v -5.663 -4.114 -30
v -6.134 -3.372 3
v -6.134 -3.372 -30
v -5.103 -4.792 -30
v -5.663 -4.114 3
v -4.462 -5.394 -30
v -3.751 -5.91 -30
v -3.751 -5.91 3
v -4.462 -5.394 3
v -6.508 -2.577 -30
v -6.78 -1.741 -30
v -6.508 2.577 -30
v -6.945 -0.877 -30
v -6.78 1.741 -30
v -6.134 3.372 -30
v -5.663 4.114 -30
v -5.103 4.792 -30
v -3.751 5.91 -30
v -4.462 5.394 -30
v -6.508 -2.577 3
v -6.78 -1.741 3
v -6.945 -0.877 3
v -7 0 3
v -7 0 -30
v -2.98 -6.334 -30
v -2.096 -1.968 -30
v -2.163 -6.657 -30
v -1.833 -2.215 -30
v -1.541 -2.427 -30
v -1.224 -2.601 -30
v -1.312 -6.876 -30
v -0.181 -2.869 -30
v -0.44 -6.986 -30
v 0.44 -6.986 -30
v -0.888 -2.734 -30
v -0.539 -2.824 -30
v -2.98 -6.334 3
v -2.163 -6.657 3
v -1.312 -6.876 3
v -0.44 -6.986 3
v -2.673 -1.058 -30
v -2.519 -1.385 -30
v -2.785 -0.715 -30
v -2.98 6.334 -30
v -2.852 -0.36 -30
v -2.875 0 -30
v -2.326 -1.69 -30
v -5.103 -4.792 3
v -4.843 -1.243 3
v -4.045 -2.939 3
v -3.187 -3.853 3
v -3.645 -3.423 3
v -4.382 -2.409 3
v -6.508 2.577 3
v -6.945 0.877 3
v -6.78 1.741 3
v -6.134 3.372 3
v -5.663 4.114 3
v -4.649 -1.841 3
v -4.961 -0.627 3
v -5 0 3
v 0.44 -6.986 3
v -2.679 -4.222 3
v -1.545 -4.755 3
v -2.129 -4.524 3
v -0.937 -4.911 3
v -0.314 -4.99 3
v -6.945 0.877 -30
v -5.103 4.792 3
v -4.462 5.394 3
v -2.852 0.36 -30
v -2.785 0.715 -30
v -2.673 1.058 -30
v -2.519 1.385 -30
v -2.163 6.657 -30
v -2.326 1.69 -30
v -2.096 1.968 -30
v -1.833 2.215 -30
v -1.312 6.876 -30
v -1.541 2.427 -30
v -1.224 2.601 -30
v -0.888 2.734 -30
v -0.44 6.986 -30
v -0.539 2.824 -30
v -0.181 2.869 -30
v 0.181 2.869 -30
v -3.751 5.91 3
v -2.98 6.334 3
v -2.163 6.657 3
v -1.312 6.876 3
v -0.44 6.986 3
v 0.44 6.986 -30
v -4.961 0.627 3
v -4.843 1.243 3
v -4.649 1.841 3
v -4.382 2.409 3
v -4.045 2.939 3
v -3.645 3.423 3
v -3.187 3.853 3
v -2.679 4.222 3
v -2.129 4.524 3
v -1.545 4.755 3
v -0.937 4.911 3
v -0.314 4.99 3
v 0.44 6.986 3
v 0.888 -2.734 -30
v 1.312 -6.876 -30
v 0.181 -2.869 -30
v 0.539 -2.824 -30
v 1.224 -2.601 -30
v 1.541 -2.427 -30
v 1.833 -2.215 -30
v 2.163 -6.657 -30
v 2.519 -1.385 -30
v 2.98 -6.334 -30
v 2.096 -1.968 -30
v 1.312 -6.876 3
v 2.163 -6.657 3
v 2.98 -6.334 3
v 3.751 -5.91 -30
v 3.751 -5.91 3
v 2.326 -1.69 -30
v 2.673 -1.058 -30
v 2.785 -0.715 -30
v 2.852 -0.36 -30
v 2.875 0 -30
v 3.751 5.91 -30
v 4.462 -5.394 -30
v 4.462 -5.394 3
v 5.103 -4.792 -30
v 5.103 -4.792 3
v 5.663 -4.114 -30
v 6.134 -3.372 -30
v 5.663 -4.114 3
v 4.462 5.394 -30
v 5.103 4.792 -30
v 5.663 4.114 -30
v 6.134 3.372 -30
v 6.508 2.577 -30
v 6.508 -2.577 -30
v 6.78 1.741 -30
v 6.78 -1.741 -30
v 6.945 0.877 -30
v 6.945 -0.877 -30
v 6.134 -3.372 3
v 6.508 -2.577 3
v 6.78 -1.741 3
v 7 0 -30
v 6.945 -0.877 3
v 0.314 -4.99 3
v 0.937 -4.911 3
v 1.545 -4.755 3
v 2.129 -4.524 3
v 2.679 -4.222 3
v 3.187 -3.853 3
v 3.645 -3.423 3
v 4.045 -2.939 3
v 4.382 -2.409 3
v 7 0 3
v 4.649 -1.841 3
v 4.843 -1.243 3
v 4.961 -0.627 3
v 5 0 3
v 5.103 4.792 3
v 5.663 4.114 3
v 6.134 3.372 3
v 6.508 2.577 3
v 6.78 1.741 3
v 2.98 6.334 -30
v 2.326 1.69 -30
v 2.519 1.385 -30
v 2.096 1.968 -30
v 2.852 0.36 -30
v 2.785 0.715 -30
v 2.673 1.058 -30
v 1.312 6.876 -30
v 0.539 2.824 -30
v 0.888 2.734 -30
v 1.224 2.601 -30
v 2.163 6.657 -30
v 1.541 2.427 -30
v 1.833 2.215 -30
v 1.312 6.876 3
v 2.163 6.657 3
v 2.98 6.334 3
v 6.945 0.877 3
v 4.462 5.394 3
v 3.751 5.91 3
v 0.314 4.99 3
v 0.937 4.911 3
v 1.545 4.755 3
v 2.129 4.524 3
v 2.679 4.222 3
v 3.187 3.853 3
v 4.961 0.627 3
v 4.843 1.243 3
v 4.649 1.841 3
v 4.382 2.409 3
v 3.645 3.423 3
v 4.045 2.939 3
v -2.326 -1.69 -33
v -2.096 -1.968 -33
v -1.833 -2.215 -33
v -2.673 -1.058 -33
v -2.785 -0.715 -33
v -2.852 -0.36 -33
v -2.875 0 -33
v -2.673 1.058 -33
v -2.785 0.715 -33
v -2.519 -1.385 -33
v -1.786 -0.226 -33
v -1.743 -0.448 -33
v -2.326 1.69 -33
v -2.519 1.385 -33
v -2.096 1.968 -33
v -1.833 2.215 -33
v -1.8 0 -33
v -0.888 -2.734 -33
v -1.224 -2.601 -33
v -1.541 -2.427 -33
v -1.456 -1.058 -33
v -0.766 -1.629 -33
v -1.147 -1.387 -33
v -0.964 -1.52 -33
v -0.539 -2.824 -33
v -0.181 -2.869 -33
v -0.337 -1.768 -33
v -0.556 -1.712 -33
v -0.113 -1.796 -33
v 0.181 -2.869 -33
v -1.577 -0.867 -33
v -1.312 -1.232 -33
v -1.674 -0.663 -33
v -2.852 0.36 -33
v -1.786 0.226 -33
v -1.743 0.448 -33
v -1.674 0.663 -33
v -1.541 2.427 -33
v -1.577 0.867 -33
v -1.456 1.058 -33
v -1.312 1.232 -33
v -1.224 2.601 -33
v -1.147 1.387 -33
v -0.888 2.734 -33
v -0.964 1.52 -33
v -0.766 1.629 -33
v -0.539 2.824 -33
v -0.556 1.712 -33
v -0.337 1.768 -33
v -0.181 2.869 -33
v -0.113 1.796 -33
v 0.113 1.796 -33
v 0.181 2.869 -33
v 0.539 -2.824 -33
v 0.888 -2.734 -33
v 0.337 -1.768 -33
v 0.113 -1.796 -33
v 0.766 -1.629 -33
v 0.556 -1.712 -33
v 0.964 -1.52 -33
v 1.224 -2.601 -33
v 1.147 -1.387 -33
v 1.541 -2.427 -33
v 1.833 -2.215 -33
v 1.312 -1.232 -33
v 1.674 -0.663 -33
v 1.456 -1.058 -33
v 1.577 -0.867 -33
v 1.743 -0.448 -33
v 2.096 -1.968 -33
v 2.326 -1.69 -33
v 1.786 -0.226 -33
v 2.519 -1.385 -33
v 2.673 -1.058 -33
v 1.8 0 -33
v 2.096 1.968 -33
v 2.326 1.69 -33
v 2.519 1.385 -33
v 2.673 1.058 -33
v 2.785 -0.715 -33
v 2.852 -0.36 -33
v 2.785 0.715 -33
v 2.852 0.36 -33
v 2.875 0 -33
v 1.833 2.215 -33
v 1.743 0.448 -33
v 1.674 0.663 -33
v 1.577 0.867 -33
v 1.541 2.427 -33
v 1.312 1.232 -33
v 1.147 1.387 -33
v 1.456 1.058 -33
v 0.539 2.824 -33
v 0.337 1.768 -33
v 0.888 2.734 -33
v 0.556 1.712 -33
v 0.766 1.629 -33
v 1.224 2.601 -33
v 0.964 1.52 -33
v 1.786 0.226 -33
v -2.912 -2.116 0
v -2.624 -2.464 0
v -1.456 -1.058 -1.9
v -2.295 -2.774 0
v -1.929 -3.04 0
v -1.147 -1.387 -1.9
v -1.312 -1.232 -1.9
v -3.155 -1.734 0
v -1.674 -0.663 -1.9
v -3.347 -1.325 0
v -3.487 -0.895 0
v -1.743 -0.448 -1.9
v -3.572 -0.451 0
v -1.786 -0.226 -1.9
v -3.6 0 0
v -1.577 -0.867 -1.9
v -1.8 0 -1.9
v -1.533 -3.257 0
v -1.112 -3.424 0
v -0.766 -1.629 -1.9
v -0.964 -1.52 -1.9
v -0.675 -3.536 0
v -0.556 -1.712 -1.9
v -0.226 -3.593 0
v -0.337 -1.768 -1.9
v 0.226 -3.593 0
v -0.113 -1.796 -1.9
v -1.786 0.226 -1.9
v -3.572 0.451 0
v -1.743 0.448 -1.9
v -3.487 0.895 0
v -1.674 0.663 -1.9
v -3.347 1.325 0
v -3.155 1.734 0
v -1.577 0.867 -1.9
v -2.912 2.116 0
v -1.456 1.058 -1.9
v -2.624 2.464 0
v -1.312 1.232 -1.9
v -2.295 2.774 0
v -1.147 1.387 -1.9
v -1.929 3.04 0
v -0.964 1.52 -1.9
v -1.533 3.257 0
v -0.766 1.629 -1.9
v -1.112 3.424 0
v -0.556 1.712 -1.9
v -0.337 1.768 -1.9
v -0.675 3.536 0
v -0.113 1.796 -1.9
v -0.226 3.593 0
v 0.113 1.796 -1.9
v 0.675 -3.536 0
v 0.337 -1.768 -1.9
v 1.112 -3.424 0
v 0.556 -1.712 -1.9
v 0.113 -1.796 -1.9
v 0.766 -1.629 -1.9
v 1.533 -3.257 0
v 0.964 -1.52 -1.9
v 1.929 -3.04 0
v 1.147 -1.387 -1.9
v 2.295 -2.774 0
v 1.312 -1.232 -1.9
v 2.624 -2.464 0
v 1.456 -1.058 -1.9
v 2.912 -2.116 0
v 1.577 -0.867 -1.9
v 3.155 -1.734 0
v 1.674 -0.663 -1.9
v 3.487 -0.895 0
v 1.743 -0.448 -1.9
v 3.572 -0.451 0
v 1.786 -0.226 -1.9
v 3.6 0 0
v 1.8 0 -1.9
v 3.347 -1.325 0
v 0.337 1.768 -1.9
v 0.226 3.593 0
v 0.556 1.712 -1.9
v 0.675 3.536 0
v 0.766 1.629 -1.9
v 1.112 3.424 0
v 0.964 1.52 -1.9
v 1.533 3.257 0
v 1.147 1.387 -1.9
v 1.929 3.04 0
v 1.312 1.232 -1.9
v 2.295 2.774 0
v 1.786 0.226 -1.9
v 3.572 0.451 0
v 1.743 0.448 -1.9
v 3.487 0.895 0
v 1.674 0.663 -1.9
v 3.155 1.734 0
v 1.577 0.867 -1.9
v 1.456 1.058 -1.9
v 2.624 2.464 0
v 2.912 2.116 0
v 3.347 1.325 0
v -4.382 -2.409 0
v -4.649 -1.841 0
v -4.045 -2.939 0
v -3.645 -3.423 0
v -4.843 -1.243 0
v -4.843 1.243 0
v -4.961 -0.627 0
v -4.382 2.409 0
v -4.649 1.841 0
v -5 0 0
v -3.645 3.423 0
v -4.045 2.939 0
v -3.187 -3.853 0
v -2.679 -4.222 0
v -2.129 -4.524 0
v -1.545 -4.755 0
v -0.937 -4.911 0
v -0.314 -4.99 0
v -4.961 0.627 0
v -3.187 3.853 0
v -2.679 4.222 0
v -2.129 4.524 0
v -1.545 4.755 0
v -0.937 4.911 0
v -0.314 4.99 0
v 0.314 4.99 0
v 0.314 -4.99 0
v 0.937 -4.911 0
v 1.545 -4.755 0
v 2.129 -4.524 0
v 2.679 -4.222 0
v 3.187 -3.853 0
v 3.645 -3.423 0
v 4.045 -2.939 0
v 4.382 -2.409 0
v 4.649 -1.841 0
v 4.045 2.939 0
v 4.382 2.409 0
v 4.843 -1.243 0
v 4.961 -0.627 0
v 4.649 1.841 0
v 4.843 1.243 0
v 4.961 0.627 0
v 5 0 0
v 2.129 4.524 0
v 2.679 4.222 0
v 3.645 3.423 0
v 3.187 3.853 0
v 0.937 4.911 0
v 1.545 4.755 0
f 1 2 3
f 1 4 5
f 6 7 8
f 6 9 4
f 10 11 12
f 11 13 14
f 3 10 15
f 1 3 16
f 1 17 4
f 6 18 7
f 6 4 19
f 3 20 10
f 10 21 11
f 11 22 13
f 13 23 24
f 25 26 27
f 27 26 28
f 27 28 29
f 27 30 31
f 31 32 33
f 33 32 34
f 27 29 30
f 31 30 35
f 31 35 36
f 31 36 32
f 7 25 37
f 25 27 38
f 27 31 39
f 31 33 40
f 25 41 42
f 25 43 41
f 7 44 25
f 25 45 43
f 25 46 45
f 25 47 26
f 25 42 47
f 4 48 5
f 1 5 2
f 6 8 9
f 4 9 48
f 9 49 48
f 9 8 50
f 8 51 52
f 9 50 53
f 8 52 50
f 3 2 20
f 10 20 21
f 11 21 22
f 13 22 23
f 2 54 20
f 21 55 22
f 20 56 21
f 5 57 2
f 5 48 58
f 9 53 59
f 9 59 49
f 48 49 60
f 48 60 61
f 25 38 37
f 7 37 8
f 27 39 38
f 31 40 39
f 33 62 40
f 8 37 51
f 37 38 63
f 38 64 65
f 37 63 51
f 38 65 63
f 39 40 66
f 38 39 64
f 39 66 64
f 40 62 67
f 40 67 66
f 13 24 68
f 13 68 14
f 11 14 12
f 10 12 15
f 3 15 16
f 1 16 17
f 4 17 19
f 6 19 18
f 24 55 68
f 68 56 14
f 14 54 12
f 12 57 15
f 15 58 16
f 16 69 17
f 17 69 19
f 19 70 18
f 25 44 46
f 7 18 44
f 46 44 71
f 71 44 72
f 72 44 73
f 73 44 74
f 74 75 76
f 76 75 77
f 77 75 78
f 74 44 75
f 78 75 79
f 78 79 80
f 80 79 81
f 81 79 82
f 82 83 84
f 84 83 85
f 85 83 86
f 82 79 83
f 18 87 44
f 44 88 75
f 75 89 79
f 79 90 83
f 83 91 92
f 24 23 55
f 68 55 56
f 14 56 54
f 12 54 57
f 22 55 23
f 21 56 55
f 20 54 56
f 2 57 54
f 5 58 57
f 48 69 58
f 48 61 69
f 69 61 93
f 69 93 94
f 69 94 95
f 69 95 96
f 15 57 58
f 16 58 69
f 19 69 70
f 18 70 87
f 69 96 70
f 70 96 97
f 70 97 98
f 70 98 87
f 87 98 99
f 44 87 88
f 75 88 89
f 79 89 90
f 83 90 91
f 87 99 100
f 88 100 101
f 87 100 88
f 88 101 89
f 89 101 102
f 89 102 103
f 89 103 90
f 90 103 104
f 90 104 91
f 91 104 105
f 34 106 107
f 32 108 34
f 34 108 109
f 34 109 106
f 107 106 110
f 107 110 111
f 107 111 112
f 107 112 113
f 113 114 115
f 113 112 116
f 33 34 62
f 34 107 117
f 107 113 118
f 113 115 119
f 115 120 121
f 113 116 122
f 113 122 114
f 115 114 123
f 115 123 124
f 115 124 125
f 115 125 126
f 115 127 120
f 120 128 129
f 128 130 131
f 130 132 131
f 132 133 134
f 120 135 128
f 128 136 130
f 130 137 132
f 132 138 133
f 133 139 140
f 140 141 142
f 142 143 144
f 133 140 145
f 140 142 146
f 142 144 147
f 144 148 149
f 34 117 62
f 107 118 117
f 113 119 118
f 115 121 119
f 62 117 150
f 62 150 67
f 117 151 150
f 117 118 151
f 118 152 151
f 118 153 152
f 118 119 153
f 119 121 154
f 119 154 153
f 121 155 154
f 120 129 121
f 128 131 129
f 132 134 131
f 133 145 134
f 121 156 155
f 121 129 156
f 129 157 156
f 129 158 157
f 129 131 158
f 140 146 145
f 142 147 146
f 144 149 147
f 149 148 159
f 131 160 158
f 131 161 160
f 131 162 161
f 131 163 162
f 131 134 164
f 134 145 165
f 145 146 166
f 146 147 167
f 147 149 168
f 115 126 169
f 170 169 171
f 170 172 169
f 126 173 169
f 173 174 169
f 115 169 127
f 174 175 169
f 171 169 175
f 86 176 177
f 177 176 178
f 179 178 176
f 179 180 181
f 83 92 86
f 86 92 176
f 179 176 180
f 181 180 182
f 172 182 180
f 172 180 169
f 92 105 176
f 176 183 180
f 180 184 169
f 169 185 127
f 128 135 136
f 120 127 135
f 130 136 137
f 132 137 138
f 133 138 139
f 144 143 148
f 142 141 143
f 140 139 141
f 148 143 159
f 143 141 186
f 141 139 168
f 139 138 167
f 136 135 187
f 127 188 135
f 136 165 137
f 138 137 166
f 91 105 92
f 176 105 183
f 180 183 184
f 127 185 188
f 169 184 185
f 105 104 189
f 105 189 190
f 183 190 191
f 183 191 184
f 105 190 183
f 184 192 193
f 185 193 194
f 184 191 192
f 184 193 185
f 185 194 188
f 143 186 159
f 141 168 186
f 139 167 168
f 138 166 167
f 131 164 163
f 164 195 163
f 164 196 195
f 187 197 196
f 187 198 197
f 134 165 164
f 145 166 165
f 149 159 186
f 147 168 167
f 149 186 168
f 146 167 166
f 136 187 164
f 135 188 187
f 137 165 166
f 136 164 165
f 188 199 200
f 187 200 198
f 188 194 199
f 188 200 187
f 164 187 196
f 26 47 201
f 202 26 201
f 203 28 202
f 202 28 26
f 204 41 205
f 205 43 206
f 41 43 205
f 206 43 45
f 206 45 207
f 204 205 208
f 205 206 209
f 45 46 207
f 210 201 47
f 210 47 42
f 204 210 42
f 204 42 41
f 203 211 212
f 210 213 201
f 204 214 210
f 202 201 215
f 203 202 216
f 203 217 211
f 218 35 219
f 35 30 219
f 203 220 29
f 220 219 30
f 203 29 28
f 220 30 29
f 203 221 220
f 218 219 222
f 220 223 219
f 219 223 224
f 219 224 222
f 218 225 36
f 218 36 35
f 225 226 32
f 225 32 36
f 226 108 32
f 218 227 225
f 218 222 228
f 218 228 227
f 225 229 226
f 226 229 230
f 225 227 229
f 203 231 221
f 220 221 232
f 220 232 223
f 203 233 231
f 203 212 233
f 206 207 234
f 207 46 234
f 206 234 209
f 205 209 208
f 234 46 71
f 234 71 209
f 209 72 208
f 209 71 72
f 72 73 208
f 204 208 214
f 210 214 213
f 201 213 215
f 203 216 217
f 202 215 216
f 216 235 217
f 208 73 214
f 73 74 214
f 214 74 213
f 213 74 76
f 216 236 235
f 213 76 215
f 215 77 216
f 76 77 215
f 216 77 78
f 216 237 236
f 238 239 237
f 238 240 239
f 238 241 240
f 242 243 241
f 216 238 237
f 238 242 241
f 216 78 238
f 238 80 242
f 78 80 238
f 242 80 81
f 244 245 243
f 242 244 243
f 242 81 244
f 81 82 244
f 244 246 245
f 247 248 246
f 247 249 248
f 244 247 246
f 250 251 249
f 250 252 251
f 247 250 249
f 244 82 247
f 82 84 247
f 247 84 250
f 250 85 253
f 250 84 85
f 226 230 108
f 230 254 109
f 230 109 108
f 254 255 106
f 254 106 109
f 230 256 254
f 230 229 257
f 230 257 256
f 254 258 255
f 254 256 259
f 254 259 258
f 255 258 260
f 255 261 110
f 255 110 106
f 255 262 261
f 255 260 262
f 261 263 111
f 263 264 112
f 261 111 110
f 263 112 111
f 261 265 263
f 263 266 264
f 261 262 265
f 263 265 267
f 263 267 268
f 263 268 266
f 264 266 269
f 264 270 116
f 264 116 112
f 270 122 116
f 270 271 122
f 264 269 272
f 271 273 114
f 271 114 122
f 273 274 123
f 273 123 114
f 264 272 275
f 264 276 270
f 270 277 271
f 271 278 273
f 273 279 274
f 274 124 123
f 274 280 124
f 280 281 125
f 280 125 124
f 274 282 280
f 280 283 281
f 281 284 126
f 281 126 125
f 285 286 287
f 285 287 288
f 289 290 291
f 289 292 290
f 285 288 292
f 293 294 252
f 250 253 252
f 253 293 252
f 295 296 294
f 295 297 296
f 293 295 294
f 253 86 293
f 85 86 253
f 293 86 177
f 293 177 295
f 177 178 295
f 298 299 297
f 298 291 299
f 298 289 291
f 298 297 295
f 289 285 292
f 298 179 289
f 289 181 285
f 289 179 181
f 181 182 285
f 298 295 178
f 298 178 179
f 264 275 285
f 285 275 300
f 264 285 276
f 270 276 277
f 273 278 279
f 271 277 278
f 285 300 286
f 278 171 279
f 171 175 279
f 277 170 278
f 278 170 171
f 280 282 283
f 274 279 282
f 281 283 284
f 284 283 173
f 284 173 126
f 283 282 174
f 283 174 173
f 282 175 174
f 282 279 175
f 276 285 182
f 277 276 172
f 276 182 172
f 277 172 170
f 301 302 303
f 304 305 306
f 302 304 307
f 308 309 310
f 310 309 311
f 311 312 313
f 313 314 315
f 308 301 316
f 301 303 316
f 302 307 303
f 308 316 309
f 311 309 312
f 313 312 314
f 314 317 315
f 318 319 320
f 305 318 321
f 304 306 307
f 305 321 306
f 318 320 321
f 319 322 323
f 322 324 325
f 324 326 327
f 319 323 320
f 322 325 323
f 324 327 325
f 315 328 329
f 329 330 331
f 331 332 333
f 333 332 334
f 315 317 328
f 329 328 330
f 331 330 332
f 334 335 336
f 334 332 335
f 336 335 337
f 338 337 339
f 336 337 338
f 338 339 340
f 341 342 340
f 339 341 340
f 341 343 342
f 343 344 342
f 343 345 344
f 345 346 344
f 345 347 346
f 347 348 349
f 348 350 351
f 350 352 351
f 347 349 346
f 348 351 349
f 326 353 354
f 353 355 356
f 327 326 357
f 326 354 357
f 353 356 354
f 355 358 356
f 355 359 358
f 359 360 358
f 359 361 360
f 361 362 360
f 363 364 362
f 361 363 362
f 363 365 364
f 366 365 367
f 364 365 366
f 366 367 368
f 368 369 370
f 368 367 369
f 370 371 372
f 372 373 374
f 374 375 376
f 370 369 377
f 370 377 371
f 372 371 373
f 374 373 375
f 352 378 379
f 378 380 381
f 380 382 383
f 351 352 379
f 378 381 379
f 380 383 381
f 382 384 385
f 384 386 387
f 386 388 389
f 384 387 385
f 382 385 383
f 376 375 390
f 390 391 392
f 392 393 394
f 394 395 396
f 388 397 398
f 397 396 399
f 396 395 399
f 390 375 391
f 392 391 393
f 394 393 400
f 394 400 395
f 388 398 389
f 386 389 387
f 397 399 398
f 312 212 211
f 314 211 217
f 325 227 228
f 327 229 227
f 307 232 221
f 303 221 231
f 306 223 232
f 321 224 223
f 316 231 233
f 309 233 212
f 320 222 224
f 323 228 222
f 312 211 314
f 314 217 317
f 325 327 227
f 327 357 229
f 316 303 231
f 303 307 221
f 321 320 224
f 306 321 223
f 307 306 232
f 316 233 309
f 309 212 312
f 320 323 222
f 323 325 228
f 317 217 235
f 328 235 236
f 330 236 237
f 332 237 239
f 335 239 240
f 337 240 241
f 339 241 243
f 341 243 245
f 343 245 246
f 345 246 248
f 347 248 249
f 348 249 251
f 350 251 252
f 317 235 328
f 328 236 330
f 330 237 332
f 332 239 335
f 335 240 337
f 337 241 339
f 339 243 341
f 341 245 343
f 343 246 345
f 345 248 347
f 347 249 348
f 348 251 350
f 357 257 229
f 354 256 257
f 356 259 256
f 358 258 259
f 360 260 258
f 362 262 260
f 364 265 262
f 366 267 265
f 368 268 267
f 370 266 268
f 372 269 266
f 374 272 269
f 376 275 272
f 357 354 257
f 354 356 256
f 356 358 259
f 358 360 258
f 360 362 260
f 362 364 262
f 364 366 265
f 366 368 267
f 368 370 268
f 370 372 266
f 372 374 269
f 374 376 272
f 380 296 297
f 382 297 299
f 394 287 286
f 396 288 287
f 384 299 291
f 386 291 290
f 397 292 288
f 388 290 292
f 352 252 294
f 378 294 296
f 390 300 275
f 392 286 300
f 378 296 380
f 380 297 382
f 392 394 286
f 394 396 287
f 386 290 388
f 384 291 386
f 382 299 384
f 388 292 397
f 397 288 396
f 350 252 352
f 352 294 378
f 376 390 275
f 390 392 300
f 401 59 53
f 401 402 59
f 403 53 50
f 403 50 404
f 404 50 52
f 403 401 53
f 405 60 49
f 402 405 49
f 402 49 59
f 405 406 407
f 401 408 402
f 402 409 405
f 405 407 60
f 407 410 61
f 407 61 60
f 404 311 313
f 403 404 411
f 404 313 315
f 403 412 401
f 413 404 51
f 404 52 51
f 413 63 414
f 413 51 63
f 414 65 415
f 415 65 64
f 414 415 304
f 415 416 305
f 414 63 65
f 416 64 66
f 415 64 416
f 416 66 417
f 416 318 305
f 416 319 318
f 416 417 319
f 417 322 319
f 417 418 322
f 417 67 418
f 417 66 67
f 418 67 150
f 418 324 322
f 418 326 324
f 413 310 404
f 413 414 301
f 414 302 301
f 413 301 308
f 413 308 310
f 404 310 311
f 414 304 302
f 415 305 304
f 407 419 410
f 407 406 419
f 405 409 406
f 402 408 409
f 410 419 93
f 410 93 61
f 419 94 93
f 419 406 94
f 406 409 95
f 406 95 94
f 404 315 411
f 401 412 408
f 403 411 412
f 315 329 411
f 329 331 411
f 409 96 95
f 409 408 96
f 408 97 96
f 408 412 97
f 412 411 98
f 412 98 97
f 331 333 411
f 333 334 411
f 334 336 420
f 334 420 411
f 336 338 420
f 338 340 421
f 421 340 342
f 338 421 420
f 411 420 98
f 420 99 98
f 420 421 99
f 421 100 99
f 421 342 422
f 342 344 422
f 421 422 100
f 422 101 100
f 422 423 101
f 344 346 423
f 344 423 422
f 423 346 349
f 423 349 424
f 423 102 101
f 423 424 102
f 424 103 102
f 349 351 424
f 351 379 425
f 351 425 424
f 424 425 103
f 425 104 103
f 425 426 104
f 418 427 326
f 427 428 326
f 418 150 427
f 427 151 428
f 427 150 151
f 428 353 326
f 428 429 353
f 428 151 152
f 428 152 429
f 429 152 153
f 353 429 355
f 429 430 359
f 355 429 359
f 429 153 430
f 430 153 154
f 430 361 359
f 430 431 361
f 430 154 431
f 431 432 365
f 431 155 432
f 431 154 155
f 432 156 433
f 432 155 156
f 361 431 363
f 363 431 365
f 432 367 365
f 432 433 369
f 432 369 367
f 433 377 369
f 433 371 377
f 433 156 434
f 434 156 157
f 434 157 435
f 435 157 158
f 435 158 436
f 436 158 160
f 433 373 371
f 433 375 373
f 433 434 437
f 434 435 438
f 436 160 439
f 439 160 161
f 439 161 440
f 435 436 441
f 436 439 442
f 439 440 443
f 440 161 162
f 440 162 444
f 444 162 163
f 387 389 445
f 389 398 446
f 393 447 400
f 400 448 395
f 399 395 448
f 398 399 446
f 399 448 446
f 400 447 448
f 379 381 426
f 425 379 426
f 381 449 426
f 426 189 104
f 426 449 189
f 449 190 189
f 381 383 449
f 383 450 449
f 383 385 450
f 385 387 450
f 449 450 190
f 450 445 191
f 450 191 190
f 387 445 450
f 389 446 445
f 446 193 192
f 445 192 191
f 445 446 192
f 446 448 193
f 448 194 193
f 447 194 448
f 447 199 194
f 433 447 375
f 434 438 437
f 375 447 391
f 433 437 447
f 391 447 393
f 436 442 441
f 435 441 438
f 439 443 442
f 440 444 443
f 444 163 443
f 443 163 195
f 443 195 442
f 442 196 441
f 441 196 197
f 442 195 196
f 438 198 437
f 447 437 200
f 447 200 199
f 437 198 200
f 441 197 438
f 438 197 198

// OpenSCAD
$fn = 50;

difference() {
	union() {
		translate(v = [0, 0, -30.0]) {
			cylinder(h = 33, r = 7.0);
		}
		#translate(v = [0, 0, -33.0]) {
			cylinder(h = 33, r = 2.875);
		}
	}
	union() {
		translate(v = [0, 0, 0]) {
			rotate(a = [0, 0, 0]) {
				difference() {
					union() {
						translate(v = [0, 0, -33.0]) {
							cylinder(h = 33, r = 1.5);
						}
						translate(v = [0, 0, -1.9]) {
							cylinder(h = 1.9, r1 = 1.8, r2 = 3.6);
						}
						translate(v = [0, 0, -33.0]) {
							cylinder(h = 33, r = 1.8);
						}
						translate(v = [0, 0, -33.0]) {
							cylinder(h = 33, r = 1.5);
						}
					}
					union();
				}
			}
		}
		#cylinder(h = 3, r = 5.0);
	}
}
